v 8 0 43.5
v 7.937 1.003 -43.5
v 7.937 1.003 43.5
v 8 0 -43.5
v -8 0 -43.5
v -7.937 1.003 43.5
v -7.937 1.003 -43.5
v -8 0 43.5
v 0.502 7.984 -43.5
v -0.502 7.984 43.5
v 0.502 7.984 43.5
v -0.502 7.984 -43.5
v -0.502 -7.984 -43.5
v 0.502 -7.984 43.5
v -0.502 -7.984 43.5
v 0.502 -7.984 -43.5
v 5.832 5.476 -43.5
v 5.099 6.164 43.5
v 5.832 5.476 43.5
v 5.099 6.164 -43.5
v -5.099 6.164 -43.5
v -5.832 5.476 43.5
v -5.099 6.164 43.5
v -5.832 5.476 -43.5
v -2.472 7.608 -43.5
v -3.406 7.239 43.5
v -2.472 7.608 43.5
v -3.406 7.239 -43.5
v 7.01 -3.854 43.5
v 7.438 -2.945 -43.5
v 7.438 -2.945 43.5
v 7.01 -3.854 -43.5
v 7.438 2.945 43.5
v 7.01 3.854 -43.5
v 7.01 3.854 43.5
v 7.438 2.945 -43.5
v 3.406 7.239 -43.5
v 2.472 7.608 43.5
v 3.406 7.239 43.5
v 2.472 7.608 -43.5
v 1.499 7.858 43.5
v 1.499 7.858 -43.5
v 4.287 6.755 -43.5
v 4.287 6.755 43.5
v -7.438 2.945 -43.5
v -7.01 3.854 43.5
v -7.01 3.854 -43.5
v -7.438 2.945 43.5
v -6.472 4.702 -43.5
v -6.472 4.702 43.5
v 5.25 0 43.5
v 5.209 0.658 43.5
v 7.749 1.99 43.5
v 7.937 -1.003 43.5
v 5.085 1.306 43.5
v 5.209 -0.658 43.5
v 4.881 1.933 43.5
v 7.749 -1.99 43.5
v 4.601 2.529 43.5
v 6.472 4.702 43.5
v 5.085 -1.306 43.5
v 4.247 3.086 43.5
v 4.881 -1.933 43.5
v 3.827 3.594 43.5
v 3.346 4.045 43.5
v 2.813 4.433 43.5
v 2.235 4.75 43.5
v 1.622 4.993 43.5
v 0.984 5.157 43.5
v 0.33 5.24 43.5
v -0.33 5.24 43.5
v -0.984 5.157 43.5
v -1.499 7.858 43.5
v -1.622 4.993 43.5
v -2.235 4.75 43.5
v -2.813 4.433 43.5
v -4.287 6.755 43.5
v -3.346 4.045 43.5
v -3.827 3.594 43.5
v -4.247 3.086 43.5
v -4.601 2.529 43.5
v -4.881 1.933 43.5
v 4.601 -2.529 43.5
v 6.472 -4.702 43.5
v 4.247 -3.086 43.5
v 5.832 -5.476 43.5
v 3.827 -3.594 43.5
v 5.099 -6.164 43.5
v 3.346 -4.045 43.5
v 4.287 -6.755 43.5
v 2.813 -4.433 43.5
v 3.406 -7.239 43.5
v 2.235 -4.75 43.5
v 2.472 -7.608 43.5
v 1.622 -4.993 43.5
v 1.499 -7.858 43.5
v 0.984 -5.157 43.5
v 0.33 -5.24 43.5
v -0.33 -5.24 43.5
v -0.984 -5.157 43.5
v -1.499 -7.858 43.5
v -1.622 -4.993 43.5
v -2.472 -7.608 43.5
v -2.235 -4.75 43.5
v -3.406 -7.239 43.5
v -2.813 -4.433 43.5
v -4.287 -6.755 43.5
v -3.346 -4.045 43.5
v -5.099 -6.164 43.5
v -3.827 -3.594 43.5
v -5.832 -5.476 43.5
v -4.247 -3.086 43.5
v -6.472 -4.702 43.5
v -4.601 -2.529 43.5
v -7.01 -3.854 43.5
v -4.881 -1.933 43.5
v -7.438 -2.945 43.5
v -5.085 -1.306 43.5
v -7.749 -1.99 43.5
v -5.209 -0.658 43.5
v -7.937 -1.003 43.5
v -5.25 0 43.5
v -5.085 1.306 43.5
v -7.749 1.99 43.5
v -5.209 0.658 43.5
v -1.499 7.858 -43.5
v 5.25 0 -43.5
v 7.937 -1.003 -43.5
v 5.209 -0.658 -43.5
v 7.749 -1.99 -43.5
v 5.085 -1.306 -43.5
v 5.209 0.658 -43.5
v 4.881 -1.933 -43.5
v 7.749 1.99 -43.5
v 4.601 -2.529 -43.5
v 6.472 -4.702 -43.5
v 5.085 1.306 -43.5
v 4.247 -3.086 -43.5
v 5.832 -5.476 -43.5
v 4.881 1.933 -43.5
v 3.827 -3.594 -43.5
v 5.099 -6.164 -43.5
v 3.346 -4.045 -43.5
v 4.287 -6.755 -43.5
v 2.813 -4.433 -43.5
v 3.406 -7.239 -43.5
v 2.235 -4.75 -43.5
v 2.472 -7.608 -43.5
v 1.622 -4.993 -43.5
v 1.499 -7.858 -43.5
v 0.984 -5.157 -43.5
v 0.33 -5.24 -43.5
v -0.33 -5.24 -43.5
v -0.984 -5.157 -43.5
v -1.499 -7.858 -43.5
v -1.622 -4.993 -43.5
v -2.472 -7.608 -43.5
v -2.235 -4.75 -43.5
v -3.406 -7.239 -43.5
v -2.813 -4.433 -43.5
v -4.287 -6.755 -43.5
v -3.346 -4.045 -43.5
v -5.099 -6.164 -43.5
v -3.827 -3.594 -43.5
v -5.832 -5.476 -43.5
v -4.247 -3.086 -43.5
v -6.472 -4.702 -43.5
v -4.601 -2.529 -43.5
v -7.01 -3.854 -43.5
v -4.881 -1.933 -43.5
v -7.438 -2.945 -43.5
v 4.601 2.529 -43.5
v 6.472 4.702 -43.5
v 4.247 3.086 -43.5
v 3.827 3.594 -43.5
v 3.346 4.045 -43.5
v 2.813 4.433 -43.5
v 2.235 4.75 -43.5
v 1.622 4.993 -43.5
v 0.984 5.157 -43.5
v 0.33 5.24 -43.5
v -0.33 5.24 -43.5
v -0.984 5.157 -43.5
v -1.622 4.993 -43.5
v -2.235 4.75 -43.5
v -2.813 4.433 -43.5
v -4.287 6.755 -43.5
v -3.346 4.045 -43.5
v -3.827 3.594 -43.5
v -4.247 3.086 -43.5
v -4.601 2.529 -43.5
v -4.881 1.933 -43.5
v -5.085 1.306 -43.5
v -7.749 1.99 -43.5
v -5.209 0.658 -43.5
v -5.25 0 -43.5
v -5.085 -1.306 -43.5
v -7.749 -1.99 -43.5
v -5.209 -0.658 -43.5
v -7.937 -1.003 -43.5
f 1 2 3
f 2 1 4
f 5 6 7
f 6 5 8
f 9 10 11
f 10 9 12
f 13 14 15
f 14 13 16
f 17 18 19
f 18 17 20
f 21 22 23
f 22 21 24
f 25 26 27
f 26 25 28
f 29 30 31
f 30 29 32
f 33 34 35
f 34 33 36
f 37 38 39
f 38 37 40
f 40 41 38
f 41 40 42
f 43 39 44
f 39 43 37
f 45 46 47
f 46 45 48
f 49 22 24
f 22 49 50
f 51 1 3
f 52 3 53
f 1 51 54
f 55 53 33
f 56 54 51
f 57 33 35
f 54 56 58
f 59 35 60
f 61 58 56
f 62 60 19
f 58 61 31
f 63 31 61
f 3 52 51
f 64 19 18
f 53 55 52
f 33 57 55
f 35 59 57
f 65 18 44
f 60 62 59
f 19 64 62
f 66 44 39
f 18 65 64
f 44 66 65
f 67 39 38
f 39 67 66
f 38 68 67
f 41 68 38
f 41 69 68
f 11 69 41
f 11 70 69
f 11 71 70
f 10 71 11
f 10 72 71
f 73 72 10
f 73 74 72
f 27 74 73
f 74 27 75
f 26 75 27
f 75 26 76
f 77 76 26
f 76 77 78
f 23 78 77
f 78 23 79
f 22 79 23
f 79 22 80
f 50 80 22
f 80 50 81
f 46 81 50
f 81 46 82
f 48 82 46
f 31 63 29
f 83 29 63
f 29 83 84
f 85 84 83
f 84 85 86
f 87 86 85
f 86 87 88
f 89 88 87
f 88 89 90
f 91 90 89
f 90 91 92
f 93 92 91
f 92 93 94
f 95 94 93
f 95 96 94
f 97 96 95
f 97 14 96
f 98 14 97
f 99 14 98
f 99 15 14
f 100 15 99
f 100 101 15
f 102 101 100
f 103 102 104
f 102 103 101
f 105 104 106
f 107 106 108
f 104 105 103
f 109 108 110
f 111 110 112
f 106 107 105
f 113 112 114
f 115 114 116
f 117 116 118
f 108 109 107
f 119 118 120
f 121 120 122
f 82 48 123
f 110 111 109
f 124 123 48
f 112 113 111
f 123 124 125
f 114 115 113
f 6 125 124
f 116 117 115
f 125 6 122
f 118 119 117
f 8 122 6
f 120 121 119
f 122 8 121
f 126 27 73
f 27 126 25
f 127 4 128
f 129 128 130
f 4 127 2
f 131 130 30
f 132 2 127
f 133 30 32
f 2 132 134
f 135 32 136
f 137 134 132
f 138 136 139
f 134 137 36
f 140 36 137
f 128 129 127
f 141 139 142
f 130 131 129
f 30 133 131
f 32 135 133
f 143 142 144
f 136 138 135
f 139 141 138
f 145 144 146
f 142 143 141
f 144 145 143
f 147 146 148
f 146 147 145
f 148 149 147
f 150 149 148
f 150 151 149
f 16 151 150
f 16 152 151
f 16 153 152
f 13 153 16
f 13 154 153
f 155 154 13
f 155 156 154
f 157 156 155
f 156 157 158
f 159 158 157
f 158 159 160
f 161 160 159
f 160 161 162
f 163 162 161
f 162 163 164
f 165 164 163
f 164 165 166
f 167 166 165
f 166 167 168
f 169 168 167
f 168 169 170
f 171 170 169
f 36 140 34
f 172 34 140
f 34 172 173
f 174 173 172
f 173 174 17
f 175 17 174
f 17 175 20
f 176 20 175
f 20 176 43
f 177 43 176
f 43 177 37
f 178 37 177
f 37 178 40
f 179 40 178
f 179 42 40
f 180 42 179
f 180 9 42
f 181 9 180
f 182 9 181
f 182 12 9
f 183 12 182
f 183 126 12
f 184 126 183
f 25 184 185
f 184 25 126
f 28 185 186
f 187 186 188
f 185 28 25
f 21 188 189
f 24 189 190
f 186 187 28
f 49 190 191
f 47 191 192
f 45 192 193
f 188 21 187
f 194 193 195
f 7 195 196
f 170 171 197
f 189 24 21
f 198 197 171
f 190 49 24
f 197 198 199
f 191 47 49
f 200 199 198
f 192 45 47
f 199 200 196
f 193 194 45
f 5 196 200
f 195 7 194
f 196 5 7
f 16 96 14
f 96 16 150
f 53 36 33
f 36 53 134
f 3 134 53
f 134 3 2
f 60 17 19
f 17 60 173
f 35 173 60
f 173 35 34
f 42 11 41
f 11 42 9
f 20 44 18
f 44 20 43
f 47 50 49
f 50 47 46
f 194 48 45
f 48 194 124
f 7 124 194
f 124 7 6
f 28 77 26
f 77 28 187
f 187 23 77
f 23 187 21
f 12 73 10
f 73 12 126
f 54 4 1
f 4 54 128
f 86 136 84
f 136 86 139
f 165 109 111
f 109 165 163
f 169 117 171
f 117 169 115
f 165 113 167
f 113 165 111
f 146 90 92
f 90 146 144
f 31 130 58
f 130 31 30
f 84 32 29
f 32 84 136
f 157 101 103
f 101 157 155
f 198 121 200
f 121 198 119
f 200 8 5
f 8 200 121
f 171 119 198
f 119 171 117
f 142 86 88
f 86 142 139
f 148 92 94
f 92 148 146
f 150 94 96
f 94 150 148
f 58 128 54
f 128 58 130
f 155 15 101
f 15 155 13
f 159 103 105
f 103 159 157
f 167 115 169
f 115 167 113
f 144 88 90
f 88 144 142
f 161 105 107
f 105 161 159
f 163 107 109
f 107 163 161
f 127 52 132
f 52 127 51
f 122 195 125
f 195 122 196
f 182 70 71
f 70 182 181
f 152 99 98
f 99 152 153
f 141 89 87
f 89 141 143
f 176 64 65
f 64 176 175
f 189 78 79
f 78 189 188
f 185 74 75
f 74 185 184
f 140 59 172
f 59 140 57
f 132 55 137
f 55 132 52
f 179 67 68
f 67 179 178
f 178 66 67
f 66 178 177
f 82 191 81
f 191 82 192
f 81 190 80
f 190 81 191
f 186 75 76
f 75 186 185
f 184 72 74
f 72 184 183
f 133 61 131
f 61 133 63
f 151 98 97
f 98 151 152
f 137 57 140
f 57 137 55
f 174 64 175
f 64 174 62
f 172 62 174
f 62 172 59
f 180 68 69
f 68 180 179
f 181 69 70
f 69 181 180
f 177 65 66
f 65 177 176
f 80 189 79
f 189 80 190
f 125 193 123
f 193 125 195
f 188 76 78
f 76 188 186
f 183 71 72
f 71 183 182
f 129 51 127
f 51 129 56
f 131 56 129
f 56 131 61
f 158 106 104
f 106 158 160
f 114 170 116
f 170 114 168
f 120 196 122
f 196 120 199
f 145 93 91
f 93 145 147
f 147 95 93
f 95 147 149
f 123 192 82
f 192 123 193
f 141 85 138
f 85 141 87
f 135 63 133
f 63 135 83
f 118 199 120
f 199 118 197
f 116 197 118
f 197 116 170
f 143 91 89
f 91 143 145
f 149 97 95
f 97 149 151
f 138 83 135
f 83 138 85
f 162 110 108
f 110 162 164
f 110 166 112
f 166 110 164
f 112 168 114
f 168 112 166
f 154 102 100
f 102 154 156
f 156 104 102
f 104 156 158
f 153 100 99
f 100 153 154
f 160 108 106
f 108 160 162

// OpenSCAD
$fn = 50;


difference() {
	union() {
		translate(v = [0, 0, -43.5000000000]) {
			cylinder(h = 87, r = 8.0000000000);
		}
	}
	union() {
		translate(v = [0, 0, -100.0000000000]) {
			cylinder(h = 200, r = 5.2500000000);
		}
	}
}
